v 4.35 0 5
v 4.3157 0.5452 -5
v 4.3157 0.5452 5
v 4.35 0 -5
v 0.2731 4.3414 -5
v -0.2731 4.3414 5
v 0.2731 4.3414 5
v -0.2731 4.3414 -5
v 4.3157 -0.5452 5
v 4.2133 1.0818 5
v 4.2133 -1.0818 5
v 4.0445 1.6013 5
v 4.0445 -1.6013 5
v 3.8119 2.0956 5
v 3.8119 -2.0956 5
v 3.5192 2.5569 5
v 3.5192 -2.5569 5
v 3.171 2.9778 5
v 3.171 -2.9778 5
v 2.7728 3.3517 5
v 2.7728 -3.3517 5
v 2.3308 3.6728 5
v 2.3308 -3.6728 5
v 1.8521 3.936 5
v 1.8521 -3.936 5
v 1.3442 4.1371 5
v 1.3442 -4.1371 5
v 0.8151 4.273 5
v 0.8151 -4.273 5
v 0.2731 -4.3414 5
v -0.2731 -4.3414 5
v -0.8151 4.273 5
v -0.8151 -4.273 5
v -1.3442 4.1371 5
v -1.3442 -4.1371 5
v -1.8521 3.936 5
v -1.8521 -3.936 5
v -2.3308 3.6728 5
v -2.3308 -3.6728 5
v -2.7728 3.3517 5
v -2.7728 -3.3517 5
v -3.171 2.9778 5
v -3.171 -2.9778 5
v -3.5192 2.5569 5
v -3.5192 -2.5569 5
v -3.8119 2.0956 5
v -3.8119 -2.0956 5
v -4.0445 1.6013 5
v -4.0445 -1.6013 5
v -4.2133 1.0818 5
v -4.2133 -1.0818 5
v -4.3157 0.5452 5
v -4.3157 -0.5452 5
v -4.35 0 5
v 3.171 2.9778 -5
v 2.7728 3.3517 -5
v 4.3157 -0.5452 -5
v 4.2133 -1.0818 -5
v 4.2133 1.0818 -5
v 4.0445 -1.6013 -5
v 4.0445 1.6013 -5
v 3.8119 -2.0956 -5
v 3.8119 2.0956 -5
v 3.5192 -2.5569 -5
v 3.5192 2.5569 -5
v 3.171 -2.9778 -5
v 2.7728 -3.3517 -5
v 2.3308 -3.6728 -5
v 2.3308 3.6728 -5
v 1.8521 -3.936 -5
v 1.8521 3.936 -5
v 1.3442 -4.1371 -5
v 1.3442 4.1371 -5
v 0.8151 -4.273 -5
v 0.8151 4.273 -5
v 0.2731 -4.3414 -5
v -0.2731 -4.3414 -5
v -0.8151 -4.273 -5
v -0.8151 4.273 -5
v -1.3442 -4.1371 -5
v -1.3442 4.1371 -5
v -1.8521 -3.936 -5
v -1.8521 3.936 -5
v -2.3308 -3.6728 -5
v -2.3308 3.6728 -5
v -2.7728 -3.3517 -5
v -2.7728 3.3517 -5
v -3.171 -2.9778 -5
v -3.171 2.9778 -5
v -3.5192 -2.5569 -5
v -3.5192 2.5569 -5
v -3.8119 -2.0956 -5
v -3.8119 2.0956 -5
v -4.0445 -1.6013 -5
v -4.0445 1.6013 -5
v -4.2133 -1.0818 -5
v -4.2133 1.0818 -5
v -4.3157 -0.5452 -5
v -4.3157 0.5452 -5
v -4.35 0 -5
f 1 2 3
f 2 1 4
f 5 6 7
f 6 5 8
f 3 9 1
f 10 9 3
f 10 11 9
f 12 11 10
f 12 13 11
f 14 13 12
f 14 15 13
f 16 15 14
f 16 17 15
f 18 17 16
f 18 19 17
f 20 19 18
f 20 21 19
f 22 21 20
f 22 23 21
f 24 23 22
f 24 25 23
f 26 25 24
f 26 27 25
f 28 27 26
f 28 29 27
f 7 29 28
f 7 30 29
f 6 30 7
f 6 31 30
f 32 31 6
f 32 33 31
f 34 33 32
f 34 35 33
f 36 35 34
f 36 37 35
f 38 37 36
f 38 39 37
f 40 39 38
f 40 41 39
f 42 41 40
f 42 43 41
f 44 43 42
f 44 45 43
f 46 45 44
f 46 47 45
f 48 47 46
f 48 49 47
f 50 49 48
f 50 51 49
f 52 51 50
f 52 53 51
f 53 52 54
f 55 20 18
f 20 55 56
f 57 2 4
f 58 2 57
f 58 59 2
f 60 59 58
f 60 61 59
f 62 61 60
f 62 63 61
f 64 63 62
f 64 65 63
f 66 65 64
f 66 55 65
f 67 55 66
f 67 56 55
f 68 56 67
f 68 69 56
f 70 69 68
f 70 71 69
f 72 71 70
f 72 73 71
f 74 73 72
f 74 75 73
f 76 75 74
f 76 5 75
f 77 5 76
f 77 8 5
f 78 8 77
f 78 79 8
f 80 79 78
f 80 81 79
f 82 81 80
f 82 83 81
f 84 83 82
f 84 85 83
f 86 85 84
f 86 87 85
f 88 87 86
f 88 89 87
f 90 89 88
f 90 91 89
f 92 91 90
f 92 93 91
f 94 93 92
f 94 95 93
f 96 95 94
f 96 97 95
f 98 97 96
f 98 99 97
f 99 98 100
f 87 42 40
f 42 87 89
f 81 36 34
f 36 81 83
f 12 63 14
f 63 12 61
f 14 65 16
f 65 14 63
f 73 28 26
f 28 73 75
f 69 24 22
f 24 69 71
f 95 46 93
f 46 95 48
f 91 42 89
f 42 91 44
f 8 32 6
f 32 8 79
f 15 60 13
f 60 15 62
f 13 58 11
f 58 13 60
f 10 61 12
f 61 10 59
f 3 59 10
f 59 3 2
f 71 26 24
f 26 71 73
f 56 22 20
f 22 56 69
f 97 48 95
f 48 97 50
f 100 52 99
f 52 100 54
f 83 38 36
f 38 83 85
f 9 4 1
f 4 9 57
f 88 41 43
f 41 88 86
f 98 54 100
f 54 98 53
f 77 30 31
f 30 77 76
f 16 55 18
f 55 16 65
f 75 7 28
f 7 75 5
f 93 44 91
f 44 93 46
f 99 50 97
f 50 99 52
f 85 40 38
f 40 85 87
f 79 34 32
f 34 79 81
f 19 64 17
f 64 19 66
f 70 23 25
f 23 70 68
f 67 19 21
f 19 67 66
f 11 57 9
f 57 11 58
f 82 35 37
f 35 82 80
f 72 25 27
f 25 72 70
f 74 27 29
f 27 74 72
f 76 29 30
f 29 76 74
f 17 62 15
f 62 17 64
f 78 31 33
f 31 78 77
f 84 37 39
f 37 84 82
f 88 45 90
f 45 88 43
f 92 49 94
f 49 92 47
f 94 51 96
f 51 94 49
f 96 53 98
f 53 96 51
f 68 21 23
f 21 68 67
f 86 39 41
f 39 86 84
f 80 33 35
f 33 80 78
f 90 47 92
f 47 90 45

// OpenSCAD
$fn = 50;


difference() {
	union() {
		translate(v = [0, 0, -5.0000000000]) {
			cylinder(h = 10, r = 4.3500000000);
		}
	}
	union() {
		translate(v = [0, 0, -100.0000000000]) {
			cylinder(h = 200, r = 0);
		}
	}
}
